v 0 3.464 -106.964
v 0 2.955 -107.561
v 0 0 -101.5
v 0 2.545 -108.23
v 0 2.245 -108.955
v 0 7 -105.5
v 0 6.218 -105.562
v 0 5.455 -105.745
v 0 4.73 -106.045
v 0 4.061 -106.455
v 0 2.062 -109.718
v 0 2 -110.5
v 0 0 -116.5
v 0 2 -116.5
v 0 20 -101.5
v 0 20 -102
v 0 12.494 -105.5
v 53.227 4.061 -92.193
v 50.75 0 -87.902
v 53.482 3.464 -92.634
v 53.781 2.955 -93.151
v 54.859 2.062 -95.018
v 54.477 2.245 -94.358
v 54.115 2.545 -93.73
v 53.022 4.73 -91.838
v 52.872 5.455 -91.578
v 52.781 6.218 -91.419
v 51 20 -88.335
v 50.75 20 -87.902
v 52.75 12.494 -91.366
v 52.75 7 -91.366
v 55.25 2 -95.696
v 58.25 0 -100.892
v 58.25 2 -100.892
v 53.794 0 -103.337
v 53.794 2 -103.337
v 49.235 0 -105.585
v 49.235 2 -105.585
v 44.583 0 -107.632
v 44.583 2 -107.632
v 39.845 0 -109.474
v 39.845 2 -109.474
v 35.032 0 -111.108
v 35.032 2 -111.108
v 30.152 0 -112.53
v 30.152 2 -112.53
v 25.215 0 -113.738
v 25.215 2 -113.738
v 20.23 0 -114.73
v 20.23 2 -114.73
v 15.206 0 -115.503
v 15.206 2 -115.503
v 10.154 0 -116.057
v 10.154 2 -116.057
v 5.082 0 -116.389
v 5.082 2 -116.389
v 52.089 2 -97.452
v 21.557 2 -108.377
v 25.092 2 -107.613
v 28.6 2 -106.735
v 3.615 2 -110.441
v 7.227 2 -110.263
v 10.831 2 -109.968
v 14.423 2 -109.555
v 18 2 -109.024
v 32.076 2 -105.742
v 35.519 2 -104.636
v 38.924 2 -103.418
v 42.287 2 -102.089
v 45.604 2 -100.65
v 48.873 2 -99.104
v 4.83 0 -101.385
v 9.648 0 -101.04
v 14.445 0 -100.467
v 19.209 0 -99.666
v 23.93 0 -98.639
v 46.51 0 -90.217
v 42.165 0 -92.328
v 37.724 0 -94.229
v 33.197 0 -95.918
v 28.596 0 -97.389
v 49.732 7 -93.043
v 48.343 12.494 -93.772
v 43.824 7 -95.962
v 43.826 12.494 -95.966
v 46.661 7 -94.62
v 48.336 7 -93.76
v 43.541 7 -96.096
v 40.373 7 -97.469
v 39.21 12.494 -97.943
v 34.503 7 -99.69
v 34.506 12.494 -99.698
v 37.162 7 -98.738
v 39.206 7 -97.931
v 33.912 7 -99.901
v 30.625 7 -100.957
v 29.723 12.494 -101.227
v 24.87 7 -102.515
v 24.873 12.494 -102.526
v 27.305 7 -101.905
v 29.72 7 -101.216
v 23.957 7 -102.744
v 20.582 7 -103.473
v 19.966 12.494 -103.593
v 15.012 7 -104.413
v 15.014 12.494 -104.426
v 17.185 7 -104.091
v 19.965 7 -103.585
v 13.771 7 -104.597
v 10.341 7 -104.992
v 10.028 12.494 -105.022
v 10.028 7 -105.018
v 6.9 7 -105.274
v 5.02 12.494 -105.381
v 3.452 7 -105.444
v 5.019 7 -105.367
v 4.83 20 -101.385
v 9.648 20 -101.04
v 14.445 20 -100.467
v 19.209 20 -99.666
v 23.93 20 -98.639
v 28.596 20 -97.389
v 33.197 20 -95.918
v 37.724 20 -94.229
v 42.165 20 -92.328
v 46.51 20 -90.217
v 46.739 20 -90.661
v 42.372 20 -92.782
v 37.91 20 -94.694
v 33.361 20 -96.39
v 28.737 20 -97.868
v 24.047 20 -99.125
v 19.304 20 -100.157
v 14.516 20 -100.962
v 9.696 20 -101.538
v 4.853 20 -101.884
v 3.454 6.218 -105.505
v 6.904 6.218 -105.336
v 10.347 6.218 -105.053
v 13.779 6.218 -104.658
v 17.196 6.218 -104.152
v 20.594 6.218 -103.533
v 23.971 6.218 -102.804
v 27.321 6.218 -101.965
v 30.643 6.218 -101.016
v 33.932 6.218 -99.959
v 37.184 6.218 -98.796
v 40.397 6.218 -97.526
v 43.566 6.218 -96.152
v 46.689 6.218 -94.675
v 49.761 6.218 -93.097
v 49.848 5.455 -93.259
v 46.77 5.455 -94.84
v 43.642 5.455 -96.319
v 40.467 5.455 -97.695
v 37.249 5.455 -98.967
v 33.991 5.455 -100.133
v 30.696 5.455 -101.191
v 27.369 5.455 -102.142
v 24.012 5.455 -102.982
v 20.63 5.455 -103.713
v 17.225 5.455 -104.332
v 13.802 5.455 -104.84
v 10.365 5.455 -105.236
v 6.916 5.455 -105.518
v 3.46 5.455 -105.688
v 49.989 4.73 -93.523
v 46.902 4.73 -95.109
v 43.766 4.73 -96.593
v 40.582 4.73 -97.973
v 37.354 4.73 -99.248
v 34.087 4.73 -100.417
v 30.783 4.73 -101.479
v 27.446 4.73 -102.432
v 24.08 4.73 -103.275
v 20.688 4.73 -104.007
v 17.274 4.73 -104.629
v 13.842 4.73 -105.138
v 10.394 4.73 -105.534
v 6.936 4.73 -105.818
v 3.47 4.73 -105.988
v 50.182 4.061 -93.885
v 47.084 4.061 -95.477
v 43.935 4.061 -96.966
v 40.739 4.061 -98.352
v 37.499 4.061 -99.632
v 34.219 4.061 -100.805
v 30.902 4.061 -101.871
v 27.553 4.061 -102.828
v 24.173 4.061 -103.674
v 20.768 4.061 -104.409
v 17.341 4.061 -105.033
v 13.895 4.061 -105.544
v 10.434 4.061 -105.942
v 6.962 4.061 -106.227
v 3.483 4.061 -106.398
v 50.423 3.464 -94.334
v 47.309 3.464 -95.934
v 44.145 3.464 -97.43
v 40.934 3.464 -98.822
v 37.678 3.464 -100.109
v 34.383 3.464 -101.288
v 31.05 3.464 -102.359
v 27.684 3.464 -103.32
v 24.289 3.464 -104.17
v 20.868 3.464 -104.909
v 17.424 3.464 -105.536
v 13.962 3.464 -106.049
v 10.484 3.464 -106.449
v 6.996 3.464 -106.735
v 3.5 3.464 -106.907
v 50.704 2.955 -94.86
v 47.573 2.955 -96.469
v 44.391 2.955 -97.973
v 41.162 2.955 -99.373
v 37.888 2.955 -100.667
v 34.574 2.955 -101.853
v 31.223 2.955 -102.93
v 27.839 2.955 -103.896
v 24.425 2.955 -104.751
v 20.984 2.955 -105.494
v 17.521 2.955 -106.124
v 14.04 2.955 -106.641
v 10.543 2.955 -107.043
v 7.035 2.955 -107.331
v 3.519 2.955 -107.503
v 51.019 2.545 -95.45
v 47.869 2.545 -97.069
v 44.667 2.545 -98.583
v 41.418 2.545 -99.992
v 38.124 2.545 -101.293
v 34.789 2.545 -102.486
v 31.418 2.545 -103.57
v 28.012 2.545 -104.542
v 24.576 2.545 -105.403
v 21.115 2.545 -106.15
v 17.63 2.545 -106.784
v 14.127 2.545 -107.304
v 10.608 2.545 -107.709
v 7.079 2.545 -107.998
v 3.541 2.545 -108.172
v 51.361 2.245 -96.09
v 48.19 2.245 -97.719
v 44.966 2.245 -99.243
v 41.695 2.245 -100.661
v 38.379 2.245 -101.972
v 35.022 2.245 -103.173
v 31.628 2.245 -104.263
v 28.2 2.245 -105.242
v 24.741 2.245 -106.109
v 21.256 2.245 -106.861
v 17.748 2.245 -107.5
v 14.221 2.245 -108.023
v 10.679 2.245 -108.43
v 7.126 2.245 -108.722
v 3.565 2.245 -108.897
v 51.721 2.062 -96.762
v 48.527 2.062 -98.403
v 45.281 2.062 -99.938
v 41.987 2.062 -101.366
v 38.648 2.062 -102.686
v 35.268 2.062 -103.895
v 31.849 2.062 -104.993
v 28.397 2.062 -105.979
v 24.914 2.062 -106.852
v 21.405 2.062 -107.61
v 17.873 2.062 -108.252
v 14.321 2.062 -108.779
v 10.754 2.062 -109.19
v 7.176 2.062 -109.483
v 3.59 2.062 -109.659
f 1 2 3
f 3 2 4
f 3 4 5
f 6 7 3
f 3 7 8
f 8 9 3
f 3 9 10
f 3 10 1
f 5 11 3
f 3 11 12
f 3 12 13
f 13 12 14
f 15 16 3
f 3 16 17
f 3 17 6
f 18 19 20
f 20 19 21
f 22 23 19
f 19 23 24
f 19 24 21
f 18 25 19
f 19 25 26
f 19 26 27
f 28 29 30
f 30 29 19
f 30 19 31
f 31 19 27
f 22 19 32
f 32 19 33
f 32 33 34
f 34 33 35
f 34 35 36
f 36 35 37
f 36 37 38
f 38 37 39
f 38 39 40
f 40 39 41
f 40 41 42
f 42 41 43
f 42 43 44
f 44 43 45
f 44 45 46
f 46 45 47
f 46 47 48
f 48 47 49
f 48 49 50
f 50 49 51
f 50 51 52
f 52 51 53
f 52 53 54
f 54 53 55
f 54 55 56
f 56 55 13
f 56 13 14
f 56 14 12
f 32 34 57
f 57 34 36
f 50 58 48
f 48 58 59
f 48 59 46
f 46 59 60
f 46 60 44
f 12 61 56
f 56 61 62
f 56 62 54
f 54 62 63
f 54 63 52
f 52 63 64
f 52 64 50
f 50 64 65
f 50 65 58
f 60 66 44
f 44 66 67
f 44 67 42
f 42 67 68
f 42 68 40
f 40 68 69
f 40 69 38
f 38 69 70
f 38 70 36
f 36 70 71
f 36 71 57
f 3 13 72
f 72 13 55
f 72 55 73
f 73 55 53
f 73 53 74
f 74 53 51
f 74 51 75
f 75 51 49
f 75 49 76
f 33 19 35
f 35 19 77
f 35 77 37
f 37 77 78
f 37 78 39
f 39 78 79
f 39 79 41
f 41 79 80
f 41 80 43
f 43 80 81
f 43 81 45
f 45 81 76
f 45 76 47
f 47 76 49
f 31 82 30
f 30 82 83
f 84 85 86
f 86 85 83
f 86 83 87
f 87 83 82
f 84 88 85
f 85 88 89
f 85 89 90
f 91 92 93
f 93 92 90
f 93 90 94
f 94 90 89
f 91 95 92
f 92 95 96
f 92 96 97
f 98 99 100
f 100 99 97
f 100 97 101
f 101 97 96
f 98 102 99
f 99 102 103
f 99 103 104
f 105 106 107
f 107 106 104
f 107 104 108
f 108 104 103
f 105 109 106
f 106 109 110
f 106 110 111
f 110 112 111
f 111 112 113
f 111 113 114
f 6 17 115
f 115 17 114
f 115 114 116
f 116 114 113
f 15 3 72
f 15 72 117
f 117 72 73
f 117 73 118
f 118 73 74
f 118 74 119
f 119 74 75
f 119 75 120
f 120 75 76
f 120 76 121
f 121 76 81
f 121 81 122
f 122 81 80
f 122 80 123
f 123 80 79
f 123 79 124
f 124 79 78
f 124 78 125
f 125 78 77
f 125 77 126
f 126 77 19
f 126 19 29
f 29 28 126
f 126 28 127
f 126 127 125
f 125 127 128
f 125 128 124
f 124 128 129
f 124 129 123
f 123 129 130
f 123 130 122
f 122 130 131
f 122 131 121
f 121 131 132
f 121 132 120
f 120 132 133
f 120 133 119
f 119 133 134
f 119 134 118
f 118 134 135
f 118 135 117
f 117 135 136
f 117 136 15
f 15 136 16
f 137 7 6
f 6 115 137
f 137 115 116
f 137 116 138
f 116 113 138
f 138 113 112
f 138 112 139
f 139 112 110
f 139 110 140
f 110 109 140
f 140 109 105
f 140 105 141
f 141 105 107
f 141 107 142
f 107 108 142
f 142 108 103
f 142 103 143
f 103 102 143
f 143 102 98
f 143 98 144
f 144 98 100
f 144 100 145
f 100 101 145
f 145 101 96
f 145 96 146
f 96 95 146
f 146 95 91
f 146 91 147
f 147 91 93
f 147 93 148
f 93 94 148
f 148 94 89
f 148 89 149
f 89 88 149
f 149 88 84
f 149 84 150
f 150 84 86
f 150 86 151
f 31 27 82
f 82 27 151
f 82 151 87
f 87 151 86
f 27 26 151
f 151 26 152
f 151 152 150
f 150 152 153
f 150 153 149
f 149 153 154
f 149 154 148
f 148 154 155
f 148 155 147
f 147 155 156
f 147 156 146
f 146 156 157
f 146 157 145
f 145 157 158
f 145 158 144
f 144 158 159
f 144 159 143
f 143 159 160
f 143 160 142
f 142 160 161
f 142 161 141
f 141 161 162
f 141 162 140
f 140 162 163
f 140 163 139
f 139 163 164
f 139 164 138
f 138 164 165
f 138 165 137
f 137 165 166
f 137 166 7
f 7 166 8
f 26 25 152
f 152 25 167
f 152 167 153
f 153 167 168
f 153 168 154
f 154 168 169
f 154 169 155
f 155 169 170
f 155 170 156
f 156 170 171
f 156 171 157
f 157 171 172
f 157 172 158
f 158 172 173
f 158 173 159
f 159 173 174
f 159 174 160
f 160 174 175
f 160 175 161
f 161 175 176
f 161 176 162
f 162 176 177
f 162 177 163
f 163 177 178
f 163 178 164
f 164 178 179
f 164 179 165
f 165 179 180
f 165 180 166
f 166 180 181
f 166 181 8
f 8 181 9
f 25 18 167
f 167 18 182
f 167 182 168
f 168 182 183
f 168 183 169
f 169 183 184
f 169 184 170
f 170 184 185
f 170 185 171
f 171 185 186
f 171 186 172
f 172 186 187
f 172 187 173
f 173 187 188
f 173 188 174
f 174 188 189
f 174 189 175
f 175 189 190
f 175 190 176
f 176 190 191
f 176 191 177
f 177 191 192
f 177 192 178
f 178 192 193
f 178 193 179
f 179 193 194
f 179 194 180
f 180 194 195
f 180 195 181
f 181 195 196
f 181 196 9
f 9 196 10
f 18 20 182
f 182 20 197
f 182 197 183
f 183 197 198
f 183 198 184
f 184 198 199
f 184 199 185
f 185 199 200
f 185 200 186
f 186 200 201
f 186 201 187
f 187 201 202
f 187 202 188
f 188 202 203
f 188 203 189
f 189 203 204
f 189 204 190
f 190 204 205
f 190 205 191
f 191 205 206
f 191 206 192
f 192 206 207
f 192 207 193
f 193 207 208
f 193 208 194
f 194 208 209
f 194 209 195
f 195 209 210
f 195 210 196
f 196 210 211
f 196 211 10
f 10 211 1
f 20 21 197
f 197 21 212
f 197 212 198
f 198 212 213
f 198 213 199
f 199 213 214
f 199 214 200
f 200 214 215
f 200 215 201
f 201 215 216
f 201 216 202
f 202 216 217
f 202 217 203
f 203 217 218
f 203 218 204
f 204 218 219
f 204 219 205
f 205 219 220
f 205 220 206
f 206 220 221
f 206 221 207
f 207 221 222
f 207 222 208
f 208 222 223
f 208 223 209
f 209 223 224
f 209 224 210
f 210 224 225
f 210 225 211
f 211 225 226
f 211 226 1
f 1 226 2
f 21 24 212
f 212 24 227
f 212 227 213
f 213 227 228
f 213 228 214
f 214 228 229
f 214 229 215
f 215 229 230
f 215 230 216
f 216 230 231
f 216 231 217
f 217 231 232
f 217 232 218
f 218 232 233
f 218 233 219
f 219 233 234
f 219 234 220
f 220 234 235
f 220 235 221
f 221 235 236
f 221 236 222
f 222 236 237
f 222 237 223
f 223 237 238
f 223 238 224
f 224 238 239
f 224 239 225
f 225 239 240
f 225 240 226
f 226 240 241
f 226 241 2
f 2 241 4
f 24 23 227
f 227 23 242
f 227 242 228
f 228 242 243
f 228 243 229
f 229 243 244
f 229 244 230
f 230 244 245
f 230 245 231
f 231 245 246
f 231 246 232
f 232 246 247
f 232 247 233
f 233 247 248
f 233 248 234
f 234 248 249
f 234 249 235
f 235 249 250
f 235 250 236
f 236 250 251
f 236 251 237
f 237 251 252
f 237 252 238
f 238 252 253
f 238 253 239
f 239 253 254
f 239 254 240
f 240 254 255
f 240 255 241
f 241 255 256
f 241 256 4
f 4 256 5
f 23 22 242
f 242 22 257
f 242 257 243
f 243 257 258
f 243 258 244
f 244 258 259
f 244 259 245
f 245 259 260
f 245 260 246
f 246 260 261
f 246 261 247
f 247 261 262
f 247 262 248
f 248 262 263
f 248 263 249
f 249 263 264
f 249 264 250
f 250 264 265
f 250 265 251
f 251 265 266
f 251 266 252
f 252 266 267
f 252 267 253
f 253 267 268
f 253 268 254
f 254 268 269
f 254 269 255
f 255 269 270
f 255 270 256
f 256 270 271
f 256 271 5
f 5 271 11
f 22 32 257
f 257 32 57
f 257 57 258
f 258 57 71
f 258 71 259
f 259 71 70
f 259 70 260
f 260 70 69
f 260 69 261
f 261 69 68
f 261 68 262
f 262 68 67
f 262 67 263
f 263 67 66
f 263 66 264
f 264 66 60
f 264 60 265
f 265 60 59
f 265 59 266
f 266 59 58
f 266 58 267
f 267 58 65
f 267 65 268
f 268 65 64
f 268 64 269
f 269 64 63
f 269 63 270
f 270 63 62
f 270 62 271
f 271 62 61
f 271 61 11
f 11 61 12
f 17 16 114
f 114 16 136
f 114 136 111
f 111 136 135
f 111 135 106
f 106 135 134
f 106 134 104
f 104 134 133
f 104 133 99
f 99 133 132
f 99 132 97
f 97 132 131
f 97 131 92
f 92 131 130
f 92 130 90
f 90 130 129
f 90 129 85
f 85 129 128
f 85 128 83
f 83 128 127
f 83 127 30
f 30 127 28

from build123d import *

# Parameters (mm, degrees)
BOSS_EXTRUDE1_DEPTH = 2
BOSS_EXTRUDE2_DEPTH = 20
FILLET1_R           = 5
CHAMFER1_SIZE       = 3.5
CHAMFER1_SIZE2      = 7.505774222


with BuildPart() as part:
    # Sketch1 → Boss-Extrude1 (new body)
    with BuildSketch(Plane(origin=(0, 0, 0), x_dir=(1, 0, 0), z_dir=(0, 1, 0))):
        with BuildLine():
            ThreePointArc((58.25, 100.891959541), (30.152418754, 112.530358763), (0, 116.5))
            Line((0, 116.5), (0, 105.5))
            ThreePointArc((0, 105.5), (27.305409258, 101.905174673), (52.75, 91.365680099))
            Line((52.75, 91.365680099), (58.25, 100.891959541))
        make_face()
    extrude(amount=BOSS_EXTRUDE1_DEPTH)

    # Sketch1<3> → Boss-Extrude2 (add)
    with BuildSketch(Plane(origin=(0, 0, 0), x_dir=(1, 0, 0), z_dir=(0, 1, 0))):
        with BuildLine():
            ThreePointArc((52.75, 91.365680099), (27.305409258, 101.905174673), (0, 105.5))
            Line((0, 105.5), (0, 101.5))
            ThreePointArc((0, 101.5), (26.270133078, 98.041471368), (50.75, 87.901578484))
            Line((50.75, 87.901578484), (52.75, 91.365680099))
        make_face()
    extrude(amount=BOSS_EXTRUDE2_DEPTH)

    # Fillet1
    fillet1_edges = [part.edges().sort_by_distance(p)[0] for p in [
        (27.305409258, 2, -101.905174673),
    ]]
    fillet(fillet1_edges, radius=FILLET1_R)

    # Chamfer1
    chamfer1_edges = [part.edges().sort_by_distance(p)[0] for p in [
        (27.305409258, 20, -101.905174673),
    ]]
    chamfer1_side = [part.faces().sort_by_distance(p)[0] for p in [
        (26.486113557, 20, -98.847521491),
    ]]
    chamfer(chamfer1_edges, length=CHAMFER1_SIZE, length2=CHAMFER1_SIZE2, reference=chamfer1_side[0])


solid = part.part
